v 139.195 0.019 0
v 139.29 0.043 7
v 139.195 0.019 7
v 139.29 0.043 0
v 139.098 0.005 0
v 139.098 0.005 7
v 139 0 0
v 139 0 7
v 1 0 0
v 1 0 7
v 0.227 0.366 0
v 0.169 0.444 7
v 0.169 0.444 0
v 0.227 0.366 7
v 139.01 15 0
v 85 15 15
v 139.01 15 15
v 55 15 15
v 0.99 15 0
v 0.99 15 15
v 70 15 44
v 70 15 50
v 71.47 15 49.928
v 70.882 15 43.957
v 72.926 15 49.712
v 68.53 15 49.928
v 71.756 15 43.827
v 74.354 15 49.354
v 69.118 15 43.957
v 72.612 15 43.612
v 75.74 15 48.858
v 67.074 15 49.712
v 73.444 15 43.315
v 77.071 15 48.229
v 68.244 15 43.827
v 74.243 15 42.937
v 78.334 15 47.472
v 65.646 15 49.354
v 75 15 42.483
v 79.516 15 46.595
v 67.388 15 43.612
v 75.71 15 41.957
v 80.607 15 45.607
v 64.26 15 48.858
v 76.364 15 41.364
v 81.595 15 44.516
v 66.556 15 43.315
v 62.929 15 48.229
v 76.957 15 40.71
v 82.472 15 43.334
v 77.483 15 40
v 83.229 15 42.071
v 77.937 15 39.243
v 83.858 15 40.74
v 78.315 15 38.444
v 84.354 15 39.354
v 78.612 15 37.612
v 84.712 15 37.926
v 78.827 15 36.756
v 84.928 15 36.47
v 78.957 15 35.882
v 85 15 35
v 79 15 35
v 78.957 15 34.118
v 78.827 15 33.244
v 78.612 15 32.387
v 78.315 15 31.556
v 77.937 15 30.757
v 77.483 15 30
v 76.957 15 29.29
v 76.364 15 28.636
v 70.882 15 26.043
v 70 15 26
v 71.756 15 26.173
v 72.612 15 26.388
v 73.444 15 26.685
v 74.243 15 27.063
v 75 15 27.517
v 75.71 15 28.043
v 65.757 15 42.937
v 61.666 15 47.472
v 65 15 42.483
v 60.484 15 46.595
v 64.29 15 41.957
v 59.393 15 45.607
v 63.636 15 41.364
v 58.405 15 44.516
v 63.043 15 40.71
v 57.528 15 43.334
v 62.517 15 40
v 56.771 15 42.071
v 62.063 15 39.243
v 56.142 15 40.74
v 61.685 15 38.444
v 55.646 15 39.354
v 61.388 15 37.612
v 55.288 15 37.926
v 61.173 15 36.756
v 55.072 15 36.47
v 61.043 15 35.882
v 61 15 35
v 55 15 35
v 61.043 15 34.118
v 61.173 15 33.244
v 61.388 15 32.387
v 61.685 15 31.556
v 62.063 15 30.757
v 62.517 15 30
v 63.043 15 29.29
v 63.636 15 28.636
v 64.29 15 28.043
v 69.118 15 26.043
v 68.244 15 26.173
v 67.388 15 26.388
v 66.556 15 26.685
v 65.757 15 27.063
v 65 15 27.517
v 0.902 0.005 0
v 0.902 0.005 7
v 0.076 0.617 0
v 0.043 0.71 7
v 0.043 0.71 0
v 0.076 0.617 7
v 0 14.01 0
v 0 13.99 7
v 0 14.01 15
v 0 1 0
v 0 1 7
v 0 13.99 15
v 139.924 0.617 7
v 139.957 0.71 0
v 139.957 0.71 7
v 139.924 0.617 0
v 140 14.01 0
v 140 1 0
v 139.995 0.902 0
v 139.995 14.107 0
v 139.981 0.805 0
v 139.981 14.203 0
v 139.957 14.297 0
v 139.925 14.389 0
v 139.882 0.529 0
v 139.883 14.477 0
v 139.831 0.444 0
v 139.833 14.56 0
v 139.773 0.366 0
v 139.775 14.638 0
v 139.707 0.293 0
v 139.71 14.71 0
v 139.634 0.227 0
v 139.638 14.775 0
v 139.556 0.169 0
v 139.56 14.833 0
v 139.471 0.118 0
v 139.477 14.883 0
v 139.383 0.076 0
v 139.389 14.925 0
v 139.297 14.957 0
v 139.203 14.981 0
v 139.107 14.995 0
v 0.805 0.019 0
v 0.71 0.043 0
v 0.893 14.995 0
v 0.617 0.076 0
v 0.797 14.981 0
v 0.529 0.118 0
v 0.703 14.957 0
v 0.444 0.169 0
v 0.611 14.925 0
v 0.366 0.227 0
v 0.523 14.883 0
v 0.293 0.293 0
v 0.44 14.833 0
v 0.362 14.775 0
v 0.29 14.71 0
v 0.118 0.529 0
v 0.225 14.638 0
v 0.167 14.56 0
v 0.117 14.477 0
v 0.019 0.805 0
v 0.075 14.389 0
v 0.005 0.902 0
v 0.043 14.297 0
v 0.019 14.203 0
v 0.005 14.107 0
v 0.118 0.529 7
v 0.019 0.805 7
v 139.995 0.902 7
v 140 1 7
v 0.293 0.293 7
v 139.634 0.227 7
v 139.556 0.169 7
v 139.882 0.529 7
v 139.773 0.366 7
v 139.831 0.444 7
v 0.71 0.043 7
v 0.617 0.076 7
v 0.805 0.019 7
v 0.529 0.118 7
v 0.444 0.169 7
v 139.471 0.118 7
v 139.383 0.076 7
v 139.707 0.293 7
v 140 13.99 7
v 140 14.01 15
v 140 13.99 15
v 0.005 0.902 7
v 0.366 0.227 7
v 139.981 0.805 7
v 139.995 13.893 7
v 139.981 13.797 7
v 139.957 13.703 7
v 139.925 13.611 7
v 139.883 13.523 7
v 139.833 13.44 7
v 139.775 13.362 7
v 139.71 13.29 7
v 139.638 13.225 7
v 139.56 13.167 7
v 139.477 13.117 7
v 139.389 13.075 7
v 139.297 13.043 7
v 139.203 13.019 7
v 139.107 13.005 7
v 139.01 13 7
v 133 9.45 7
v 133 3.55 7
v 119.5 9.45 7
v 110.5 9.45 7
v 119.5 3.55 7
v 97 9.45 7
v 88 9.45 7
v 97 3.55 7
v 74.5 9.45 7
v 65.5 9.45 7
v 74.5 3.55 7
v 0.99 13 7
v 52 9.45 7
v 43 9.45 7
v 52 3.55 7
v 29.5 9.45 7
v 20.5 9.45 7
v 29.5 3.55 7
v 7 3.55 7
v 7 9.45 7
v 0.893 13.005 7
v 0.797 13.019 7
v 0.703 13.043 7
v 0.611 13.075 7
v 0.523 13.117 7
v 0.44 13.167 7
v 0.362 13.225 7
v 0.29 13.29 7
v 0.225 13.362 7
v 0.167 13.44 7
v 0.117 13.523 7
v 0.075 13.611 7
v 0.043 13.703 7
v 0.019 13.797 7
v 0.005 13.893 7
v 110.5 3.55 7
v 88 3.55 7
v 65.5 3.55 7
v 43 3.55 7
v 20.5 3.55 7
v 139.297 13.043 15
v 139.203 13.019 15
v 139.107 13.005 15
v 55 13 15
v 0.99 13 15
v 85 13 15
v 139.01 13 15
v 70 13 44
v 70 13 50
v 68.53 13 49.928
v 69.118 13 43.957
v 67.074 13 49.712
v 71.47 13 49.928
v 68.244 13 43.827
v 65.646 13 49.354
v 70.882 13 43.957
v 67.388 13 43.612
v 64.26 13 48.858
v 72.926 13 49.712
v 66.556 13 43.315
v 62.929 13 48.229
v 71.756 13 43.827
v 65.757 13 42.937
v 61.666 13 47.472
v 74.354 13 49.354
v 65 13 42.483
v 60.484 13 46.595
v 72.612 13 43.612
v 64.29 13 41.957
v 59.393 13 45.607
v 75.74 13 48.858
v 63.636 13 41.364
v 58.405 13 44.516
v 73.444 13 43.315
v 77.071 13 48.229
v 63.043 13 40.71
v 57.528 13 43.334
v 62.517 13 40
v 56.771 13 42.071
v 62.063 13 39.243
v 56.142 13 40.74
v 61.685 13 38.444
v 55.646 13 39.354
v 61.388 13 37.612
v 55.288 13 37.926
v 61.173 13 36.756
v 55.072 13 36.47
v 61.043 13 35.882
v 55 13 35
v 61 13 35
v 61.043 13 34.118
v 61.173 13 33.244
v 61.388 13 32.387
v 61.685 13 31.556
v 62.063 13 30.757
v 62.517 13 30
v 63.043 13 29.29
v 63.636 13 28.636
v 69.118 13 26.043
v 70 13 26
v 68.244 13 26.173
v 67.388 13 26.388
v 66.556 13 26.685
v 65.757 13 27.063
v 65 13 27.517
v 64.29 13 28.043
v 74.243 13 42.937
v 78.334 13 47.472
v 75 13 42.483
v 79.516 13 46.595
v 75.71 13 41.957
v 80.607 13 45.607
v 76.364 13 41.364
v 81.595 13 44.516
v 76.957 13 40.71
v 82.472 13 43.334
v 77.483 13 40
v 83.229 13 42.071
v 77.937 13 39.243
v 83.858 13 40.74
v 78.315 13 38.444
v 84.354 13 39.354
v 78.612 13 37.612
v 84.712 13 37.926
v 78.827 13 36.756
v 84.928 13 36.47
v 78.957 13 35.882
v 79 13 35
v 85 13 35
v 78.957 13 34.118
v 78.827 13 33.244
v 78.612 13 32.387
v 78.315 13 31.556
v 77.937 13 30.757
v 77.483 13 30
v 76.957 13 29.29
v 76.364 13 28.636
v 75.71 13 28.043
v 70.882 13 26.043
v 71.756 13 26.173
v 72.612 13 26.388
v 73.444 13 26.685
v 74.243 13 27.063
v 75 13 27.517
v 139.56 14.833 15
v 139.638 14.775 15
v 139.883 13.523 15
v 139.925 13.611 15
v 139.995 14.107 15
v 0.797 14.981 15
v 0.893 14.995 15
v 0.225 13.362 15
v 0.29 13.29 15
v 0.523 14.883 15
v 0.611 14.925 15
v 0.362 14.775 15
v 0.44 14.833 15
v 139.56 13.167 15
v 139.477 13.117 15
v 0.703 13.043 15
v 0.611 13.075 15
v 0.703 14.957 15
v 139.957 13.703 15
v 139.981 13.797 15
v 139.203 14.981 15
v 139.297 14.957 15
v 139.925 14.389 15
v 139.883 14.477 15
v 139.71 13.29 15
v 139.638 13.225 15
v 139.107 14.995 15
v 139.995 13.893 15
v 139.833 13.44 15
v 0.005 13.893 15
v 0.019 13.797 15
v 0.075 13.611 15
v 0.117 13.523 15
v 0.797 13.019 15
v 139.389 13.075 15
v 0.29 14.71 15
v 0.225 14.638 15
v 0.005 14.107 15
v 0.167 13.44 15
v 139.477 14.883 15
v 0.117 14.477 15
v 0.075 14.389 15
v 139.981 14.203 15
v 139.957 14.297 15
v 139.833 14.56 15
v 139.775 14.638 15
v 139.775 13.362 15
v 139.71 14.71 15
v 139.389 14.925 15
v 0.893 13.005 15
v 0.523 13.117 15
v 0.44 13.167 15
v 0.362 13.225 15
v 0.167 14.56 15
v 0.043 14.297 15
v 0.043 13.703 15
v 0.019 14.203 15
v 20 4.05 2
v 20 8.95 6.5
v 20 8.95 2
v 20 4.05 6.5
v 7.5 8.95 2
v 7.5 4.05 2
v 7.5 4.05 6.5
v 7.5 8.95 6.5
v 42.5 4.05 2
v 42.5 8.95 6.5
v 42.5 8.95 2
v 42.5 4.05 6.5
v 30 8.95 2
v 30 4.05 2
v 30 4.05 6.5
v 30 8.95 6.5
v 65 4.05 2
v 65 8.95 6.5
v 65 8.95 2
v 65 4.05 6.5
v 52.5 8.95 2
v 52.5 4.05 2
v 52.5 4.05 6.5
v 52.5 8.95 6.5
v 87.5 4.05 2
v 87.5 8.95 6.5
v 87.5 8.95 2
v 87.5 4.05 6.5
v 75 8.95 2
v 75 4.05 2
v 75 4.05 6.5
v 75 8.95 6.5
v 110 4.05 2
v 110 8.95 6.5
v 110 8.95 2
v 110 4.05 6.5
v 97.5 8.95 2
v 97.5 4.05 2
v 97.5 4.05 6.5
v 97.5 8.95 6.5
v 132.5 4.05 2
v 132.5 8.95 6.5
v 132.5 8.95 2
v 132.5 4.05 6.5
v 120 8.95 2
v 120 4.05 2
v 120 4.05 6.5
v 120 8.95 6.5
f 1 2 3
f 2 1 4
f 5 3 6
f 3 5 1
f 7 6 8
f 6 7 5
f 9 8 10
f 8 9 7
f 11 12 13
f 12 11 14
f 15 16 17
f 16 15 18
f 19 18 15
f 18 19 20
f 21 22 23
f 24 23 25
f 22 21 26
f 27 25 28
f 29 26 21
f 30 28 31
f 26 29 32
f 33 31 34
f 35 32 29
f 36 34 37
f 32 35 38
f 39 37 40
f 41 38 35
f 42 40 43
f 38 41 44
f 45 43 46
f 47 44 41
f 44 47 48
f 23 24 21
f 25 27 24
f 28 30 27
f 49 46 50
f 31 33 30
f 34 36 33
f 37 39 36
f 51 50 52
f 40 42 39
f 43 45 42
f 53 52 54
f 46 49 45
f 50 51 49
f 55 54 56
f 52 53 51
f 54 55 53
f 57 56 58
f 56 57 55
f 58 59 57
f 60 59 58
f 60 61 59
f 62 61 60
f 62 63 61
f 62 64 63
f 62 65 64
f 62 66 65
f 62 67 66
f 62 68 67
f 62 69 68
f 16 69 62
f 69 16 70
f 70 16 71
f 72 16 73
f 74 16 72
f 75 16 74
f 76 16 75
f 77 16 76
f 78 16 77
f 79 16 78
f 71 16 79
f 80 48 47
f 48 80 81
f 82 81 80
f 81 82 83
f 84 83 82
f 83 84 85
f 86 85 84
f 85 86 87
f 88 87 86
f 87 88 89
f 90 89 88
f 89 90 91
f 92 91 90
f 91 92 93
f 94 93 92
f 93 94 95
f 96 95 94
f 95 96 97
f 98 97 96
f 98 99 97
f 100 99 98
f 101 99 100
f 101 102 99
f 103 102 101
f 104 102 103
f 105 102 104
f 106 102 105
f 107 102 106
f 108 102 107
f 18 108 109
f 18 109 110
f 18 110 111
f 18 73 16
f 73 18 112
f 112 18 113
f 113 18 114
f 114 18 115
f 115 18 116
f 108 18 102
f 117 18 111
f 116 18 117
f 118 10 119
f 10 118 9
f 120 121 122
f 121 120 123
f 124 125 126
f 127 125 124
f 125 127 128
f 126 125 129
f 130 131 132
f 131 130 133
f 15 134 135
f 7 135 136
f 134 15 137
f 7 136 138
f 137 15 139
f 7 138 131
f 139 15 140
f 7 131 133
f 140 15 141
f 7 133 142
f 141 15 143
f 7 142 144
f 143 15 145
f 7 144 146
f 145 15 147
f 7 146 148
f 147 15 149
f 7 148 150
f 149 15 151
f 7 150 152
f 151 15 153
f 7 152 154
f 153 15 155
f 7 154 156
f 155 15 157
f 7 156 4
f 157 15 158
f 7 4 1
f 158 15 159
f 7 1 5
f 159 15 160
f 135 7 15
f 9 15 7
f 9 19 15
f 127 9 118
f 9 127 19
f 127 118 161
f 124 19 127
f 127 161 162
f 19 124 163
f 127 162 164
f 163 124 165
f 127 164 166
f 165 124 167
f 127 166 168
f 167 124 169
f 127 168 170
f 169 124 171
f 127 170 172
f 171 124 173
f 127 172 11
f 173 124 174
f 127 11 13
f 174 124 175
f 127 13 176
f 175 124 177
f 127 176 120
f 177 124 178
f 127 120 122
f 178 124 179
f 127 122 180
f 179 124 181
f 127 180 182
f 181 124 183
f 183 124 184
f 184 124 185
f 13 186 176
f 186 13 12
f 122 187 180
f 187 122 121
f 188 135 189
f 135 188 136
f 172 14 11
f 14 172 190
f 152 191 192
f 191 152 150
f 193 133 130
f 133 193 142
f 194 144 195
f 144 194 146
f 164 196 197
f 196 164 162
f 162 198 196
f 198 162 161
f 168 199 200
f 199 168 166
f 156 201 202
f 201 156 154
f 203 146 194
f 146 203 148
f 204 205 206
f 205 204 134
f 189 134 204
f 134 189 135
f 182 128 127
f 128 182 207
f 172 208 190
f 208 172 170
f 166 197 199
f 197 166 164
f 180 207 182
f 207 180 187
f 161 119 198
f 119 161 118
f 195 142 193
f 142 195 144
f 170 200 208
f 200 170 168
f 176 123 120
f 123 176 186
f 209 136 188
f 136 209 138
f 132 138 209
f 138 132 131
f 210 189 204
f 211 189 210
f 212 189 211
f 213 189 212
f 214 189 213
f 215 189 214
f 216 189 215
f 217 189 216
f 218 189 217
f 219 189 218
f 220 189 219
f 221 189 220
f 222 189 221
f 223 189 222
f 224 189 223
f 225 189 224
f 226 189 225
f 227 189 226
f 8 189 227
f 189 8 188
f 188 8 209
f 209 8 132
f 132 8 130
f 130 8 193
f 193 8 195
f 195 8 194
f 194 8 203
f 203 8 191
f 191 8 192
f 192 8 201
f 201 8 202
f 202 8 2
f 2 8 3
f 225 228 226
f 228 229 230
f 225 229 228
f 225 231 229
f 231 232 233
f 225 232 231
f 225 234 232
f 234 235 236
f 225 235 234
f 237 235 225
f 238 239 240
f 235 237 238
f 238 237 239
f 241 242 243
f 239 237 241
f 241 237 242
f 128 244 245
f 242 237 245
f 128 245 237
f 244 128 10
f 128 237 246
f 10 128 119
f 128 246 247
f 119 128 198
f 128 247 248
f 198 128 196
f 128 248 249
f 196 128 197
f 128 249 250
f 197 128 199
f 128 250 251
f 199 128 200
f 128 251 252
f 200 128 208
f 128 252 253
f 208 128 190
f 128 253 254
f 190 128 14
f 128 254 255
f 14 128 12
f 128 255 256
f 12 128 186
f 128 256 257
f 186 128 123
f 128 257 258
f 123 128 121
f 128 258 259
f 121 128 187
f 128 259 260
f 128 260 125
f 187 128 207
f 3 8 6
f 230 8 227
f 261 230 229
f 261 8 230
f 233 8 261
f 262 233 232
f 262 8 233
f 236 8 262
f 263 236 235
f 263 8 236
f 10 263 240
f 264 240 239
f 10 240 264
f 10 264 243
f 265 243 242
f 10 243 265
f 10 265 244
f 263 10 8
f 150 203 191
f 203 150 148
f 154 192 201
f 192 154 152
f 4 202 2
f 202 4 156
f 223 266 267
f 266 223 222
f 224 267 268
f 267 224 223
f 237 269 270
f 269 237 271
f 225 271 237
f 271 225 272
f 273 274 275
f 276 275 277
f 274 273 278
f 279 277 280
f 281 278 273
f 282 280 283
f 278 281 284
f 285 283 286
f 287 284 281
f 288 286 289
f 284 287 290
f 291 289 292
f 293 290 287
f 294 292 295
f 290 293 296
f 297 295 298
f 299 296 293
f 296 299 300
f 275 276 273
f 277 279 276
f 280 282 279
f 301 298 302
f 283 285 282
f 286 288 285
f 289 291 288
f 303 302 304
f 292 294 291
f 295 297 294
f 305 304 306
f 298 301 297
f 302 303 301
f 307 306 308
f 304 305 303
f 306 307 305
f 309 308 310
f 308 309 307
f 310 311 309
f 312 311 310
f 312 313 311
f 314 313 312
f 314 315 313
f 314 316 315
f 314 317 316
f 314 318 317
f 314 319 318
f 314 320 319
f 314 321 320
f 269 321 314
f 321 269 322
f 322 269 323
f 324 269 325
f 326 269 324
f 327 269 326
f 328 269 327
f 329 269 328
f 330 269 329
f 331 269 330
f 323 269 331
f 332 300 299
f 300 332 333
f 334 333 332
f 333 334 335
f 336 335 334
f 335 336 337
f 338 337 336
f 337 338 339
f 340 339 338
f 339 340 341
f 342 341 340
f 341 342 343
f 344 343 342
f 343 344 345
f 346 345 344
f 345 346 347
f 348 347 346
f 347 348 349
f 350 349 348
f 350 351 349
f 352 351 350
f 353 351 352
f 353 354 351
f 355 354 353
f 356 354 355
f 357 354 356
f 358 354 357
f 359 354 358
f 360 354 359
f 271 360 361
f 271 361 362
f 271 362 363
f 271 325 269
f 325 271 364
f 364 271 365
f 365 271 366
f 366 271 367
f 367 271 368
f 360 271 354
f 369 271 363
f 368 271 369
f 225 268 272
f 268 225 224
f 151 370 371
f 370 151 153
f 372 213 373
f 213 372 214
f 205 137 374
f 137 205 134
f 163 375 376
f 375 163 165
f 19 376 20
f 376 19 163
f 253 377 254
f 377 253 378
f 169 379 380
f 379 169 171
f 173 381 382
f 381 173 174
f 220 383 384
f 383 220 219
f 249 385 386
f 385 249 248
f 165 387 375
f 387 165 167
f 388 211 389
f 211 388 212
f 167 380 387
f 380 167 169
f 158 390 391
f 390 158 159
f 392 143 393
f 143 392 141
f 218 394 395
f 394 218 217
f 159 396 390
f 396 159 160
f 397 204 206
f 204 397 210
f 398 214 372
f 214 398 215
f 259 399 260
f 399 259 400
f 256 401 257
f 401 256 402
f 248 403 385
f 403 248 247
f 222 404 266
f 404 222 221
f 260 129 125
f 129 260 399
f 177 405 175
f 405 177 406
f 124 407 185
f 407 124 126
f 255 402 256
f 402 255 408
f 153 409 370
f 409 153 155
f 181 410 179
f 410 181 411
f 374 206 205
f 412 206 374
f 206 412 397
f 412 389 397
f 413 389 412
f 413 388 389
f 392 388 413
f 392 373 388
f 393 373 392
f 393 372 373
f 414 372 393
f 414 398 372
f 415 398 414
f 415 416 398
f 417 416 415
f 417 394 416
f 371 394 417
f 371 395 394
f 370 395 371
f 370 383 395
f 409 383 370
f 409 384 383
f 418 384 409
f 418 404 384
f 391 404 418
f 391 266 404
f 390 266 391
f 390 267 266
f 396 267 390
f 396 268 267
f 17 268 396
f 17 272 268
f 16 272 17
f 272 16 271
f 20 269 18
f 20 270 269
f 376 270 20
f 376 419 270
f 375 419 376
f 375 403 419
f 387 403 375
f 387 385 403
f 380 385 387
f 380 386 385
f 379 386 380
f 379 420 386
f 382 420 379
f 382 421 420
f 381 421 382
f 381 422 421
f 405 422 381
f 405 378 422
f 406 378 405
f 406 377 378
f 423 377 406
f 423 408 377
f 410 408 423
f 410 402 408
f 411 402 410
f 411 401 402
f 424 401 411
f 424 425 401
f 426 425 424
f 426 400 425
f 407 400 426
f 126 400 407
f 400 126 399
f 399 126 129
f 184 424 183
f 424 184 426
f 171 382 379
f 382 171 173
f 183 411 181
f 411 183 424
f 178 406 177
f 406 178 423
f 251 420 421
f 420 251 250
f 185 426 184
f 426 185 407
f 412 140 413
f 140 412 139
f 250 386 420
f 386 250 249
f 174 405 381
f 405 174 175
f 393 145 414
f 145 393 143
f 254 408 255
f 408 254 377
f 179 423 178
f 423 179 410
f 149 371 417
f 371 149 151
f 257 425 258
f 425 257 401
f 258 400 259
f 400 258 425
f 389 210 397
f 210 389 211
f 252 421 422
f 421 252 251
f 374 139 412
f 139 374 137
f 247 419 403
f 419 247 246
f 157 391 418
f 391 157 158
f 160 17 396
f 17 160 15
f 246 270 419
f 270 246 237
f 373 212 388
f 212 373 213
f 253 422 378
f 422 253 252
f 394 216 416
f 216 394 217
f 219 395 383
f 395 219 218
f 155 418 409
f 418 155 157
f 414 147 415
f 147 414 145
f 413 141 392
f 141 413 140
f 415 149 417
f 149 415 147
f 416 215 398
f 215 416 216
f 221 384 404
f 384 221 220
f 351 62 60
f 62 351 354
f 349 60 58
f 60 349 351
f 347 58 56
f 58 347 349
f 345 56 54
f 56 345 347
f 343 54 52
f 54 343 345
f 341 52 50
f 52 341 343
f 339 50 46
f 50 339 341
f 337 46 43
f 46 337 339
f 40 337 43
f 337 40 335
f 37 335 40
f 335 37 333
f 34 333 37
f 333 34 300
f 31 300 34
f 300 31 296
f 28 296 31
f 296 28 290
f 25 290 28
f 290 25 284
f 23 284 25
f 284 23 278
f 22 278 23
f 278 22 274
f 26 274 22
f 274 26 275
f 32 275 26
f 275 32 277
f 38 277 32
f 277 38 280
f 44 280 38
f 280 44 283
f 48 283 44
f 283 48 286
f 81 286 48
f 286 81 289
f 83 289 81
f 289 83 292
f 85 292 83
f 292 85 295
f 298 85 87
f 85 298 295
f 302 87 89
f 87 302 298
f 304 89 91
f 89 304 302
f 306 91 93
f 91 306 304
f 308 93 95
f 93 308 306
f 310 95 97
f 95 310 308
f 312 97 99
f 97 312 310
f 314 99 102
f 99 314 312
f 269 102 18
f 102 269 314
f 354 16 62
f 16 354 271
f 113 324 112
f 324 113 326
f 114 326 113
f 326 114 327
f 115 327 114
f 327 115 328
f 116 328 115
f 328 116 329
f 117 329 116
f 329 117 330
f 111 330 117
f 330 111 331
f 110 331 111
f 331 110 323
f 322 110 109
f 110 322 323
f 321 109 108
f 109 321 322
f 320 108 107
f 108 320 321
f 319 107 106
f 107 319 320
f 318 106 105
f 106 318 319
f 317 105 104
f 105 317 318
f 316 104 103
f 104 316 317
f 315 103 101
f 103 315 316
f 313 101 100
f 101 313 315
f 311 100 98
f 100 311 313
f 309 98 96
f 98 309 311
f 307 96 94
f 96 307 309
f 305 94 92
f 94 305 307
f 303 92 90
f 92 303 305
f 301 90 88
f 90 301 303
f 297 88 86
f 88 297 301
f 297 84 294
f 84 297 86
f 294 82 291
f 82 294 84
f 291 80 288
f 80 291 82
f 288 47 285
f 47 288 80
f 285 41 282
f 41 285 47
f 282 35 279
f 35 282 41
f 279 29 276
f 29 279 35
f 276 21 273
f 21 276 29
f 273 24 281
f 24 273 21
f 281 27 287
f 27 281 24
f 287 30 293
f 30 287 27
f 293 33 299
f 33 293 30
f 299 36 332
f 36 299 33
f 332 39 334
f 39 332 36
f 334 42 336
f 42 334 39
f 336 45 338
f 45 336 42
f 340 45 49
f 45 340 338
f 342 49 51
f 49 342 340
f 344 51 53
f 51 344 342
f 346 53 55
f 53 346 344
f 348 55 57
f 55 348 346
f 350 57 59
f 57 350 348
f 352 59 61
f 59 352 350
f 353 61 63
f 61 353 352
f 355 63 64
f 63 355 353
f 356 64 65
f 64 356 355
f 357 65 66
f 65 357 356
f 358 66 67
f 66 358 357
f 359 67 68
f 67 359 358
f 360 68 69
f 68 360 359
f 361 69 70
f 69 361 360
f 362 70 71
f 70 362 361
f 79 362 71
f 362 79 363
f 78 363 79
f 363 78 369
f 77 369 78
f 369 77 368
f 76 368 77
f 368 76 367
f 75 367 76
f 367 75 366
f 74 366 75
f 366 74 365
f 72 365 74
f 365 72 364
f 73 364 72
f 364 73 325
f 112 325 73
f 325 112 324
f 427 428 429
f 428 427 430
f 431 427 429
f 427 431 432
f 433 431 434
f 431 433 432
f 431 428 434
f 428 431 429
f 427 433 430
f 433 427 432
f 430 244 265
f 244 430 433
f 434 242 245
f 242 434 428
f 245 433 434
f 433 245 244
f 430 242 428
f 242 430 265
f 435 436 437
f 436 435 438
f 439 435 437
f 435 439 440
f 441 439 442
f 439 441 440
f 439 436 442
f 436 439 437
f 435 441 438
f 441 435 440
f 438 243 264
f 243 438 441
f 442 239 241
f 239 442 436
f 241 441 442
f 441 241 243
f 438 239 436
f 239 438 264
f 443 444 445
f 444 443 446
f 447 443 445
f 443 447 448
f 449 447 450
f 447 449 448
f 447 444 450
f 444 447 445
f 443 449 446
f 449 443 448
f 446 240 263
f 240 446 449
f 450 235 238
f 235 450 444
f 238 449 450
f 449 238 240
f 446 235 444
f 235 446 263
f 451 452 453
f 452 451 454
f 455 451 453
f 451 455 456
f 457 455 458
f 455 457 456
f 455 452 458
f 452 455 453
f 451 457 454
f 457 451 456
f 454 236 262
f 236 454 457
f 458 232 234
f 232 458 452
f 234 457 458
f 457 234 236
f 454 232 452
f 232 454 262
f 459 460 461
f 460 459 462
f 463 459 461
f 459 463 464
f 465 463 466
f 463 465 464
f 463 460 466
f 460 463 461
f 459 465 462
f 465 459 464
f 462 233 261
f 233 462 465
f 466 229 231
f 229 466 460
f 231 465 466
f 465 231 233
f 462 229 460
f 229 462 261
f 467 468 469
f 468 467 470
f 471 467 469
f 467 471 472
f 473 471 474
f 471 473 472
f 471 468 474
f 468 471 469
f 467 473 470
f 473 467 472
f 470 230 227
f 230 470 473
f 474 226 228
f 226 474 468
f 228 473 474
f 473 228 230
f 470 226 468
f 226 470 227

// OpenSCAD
// file: USB_dongle_holder.scad
// USB dongle holder: L bracket with a row of blind slots in the base,
// alternating USB-A and USB-C, and a handle in the middle of the back wall.
//
// X - along the bracket, Y - front to back, Z - up

/* [Bracket] */
len      = 140;  // bracket length
base_w   = 15;   // base depth (front to back), wall included
base_h   = 7;    // base thickness = slot depth + floor under slots
wall     = 2;    // back wall thickness
wall_h   = 15;   // back wall height from the bottom
corner_r = 1;    // rounding of the outer vertical corners

/* [Handle] */
handle_h    = 50; // handle height from the bottom
handle_w    = 30; // handle width
finger_d    = 18; // finger hole diameter, 0 for none

/* [Slots] */
usba        = [12.2, 4.6]; // USB-A plug [width, thickness]
usbc        = [8.3, 2.6];  // USB-C plug [width, thickness]
clear       = 0.3;  // added to each slot dimension
slot_depth  = 5;
min_gap     = 2;    // minimal spacing between slots
end_margin  = 3;    // minimal material at each end
slot_count  = 0;    // 0 = as many as fit
pattern     = "AC"; // slot types, repeated: "AC" alternates, "A" only USB-A, "C" only USB-C
spread      = true; // true = spread slots over the length, false = exactly min_gap, centered
chamfer     = 0.5;  // lead-in chamfer at the slot opening

$fn = 64;
e = 0.01;

slot_y   = (base_w - wall) / 2;  // slots centered on the open part of the base
avail    = len - 2 * end_margin;

function slot_type(i) = pattern[i % len(pattern)];
function slot_dim(i) = (slot_type(i) == "A" ? usba : usbc) + [clear, clear];
function sum_w(n) = n <= 0 ? 0 : slot_dim(n - 1)[0] + sum_w(n - 1);
function fits(n) = sum_w(n) + (n - 1) * min_gap <= avail;
function max_count(n = 1) = fits(n + 1) ? max_count(n + 1) : n;

n   = slot_count > 0 ? slot_count : max_count();
gap = n > 1 && spread ? (avail - sum_w(n)) / (n - 1) : min_gap;
assert(sum_w(n) + (n - 1) * gap <= avail + e, "slots do not fit");
x0  = (len - sum_w(n) - (n - 1) * gap) / 2; // start of the row

function count(t, i = 0) = i >= n ? 0 : (slot_type(i) == t ? 1 : 0) + count(t, i + 1);
echo(str("Slots: ", n, " (", count("A"), " USB-A, ", count("C"), " USB-C), gap ", gap, " mm"));

module rounded_rect(l, w, r) {
    offset(r = r) offset(delta = -r) square([l, w]);
}

module slot(d) {
    l = d[0]; t = d[1];
    translate([-l / 2, -t / 2, base_h - slot_depth])
        cube([l, t, slot_depth + e]);
    // lead-in chamfer
    translate([0, 0, base_h - chamfer])
        hull() {
            linear_extrude(height = e) square([l, t], center = true);
            translate([0, 0, chamfer]) linear_extrude(height = e)
                square([l + 2 * chamfer, t + 2 * chamfer], center = true);
        }
}

module slots() {
    for (i = [0 : n - 1])
        translate([x0 + sum_w(i) + i * gap + slot_dim(i)[0] / 2, slot_y, 0])
            slot(slot_dim(i));
}

// handle profile in XZ, rounded top with a finger hole
module handle_profile() {
    r = handle_w / 2;
    difference() {
        hull() {
            translate([-r, 0]) square([handle_w, e]);
            translate([0, handle_h - r]) circle(r = r);
        }
        if (finger_d > 0)
            translate([0, handle_h - r]) circle(d = finger_d);
    }
}

module bracket() {
    difference() {
        union() {
            linear_extrude(height = base_h) rounded_rect(len, base_w, corner_r);
            // back wall
            translate([0, base_w - wall, 0])
                linear_extrude(height = wall_h) rounded_rect(len, wall, min(corner_r, wall / 2 - e));
            // handle
            translate([len / 2, base_w, 0]) rotate([90, 0, 0])
                linear_extrude(height = wall) handle_profile();
        }
        slots();
    }
}

bracket();
// main file
// USB-A only dongle holder: same bracket as USB_dongle_holder.scad,
// USB-A slots only, exactly 10mm apart, centered.

include <USB_dongle_holder.scad>

pattern = "A";
min_gap = 10;
spread  = false;
